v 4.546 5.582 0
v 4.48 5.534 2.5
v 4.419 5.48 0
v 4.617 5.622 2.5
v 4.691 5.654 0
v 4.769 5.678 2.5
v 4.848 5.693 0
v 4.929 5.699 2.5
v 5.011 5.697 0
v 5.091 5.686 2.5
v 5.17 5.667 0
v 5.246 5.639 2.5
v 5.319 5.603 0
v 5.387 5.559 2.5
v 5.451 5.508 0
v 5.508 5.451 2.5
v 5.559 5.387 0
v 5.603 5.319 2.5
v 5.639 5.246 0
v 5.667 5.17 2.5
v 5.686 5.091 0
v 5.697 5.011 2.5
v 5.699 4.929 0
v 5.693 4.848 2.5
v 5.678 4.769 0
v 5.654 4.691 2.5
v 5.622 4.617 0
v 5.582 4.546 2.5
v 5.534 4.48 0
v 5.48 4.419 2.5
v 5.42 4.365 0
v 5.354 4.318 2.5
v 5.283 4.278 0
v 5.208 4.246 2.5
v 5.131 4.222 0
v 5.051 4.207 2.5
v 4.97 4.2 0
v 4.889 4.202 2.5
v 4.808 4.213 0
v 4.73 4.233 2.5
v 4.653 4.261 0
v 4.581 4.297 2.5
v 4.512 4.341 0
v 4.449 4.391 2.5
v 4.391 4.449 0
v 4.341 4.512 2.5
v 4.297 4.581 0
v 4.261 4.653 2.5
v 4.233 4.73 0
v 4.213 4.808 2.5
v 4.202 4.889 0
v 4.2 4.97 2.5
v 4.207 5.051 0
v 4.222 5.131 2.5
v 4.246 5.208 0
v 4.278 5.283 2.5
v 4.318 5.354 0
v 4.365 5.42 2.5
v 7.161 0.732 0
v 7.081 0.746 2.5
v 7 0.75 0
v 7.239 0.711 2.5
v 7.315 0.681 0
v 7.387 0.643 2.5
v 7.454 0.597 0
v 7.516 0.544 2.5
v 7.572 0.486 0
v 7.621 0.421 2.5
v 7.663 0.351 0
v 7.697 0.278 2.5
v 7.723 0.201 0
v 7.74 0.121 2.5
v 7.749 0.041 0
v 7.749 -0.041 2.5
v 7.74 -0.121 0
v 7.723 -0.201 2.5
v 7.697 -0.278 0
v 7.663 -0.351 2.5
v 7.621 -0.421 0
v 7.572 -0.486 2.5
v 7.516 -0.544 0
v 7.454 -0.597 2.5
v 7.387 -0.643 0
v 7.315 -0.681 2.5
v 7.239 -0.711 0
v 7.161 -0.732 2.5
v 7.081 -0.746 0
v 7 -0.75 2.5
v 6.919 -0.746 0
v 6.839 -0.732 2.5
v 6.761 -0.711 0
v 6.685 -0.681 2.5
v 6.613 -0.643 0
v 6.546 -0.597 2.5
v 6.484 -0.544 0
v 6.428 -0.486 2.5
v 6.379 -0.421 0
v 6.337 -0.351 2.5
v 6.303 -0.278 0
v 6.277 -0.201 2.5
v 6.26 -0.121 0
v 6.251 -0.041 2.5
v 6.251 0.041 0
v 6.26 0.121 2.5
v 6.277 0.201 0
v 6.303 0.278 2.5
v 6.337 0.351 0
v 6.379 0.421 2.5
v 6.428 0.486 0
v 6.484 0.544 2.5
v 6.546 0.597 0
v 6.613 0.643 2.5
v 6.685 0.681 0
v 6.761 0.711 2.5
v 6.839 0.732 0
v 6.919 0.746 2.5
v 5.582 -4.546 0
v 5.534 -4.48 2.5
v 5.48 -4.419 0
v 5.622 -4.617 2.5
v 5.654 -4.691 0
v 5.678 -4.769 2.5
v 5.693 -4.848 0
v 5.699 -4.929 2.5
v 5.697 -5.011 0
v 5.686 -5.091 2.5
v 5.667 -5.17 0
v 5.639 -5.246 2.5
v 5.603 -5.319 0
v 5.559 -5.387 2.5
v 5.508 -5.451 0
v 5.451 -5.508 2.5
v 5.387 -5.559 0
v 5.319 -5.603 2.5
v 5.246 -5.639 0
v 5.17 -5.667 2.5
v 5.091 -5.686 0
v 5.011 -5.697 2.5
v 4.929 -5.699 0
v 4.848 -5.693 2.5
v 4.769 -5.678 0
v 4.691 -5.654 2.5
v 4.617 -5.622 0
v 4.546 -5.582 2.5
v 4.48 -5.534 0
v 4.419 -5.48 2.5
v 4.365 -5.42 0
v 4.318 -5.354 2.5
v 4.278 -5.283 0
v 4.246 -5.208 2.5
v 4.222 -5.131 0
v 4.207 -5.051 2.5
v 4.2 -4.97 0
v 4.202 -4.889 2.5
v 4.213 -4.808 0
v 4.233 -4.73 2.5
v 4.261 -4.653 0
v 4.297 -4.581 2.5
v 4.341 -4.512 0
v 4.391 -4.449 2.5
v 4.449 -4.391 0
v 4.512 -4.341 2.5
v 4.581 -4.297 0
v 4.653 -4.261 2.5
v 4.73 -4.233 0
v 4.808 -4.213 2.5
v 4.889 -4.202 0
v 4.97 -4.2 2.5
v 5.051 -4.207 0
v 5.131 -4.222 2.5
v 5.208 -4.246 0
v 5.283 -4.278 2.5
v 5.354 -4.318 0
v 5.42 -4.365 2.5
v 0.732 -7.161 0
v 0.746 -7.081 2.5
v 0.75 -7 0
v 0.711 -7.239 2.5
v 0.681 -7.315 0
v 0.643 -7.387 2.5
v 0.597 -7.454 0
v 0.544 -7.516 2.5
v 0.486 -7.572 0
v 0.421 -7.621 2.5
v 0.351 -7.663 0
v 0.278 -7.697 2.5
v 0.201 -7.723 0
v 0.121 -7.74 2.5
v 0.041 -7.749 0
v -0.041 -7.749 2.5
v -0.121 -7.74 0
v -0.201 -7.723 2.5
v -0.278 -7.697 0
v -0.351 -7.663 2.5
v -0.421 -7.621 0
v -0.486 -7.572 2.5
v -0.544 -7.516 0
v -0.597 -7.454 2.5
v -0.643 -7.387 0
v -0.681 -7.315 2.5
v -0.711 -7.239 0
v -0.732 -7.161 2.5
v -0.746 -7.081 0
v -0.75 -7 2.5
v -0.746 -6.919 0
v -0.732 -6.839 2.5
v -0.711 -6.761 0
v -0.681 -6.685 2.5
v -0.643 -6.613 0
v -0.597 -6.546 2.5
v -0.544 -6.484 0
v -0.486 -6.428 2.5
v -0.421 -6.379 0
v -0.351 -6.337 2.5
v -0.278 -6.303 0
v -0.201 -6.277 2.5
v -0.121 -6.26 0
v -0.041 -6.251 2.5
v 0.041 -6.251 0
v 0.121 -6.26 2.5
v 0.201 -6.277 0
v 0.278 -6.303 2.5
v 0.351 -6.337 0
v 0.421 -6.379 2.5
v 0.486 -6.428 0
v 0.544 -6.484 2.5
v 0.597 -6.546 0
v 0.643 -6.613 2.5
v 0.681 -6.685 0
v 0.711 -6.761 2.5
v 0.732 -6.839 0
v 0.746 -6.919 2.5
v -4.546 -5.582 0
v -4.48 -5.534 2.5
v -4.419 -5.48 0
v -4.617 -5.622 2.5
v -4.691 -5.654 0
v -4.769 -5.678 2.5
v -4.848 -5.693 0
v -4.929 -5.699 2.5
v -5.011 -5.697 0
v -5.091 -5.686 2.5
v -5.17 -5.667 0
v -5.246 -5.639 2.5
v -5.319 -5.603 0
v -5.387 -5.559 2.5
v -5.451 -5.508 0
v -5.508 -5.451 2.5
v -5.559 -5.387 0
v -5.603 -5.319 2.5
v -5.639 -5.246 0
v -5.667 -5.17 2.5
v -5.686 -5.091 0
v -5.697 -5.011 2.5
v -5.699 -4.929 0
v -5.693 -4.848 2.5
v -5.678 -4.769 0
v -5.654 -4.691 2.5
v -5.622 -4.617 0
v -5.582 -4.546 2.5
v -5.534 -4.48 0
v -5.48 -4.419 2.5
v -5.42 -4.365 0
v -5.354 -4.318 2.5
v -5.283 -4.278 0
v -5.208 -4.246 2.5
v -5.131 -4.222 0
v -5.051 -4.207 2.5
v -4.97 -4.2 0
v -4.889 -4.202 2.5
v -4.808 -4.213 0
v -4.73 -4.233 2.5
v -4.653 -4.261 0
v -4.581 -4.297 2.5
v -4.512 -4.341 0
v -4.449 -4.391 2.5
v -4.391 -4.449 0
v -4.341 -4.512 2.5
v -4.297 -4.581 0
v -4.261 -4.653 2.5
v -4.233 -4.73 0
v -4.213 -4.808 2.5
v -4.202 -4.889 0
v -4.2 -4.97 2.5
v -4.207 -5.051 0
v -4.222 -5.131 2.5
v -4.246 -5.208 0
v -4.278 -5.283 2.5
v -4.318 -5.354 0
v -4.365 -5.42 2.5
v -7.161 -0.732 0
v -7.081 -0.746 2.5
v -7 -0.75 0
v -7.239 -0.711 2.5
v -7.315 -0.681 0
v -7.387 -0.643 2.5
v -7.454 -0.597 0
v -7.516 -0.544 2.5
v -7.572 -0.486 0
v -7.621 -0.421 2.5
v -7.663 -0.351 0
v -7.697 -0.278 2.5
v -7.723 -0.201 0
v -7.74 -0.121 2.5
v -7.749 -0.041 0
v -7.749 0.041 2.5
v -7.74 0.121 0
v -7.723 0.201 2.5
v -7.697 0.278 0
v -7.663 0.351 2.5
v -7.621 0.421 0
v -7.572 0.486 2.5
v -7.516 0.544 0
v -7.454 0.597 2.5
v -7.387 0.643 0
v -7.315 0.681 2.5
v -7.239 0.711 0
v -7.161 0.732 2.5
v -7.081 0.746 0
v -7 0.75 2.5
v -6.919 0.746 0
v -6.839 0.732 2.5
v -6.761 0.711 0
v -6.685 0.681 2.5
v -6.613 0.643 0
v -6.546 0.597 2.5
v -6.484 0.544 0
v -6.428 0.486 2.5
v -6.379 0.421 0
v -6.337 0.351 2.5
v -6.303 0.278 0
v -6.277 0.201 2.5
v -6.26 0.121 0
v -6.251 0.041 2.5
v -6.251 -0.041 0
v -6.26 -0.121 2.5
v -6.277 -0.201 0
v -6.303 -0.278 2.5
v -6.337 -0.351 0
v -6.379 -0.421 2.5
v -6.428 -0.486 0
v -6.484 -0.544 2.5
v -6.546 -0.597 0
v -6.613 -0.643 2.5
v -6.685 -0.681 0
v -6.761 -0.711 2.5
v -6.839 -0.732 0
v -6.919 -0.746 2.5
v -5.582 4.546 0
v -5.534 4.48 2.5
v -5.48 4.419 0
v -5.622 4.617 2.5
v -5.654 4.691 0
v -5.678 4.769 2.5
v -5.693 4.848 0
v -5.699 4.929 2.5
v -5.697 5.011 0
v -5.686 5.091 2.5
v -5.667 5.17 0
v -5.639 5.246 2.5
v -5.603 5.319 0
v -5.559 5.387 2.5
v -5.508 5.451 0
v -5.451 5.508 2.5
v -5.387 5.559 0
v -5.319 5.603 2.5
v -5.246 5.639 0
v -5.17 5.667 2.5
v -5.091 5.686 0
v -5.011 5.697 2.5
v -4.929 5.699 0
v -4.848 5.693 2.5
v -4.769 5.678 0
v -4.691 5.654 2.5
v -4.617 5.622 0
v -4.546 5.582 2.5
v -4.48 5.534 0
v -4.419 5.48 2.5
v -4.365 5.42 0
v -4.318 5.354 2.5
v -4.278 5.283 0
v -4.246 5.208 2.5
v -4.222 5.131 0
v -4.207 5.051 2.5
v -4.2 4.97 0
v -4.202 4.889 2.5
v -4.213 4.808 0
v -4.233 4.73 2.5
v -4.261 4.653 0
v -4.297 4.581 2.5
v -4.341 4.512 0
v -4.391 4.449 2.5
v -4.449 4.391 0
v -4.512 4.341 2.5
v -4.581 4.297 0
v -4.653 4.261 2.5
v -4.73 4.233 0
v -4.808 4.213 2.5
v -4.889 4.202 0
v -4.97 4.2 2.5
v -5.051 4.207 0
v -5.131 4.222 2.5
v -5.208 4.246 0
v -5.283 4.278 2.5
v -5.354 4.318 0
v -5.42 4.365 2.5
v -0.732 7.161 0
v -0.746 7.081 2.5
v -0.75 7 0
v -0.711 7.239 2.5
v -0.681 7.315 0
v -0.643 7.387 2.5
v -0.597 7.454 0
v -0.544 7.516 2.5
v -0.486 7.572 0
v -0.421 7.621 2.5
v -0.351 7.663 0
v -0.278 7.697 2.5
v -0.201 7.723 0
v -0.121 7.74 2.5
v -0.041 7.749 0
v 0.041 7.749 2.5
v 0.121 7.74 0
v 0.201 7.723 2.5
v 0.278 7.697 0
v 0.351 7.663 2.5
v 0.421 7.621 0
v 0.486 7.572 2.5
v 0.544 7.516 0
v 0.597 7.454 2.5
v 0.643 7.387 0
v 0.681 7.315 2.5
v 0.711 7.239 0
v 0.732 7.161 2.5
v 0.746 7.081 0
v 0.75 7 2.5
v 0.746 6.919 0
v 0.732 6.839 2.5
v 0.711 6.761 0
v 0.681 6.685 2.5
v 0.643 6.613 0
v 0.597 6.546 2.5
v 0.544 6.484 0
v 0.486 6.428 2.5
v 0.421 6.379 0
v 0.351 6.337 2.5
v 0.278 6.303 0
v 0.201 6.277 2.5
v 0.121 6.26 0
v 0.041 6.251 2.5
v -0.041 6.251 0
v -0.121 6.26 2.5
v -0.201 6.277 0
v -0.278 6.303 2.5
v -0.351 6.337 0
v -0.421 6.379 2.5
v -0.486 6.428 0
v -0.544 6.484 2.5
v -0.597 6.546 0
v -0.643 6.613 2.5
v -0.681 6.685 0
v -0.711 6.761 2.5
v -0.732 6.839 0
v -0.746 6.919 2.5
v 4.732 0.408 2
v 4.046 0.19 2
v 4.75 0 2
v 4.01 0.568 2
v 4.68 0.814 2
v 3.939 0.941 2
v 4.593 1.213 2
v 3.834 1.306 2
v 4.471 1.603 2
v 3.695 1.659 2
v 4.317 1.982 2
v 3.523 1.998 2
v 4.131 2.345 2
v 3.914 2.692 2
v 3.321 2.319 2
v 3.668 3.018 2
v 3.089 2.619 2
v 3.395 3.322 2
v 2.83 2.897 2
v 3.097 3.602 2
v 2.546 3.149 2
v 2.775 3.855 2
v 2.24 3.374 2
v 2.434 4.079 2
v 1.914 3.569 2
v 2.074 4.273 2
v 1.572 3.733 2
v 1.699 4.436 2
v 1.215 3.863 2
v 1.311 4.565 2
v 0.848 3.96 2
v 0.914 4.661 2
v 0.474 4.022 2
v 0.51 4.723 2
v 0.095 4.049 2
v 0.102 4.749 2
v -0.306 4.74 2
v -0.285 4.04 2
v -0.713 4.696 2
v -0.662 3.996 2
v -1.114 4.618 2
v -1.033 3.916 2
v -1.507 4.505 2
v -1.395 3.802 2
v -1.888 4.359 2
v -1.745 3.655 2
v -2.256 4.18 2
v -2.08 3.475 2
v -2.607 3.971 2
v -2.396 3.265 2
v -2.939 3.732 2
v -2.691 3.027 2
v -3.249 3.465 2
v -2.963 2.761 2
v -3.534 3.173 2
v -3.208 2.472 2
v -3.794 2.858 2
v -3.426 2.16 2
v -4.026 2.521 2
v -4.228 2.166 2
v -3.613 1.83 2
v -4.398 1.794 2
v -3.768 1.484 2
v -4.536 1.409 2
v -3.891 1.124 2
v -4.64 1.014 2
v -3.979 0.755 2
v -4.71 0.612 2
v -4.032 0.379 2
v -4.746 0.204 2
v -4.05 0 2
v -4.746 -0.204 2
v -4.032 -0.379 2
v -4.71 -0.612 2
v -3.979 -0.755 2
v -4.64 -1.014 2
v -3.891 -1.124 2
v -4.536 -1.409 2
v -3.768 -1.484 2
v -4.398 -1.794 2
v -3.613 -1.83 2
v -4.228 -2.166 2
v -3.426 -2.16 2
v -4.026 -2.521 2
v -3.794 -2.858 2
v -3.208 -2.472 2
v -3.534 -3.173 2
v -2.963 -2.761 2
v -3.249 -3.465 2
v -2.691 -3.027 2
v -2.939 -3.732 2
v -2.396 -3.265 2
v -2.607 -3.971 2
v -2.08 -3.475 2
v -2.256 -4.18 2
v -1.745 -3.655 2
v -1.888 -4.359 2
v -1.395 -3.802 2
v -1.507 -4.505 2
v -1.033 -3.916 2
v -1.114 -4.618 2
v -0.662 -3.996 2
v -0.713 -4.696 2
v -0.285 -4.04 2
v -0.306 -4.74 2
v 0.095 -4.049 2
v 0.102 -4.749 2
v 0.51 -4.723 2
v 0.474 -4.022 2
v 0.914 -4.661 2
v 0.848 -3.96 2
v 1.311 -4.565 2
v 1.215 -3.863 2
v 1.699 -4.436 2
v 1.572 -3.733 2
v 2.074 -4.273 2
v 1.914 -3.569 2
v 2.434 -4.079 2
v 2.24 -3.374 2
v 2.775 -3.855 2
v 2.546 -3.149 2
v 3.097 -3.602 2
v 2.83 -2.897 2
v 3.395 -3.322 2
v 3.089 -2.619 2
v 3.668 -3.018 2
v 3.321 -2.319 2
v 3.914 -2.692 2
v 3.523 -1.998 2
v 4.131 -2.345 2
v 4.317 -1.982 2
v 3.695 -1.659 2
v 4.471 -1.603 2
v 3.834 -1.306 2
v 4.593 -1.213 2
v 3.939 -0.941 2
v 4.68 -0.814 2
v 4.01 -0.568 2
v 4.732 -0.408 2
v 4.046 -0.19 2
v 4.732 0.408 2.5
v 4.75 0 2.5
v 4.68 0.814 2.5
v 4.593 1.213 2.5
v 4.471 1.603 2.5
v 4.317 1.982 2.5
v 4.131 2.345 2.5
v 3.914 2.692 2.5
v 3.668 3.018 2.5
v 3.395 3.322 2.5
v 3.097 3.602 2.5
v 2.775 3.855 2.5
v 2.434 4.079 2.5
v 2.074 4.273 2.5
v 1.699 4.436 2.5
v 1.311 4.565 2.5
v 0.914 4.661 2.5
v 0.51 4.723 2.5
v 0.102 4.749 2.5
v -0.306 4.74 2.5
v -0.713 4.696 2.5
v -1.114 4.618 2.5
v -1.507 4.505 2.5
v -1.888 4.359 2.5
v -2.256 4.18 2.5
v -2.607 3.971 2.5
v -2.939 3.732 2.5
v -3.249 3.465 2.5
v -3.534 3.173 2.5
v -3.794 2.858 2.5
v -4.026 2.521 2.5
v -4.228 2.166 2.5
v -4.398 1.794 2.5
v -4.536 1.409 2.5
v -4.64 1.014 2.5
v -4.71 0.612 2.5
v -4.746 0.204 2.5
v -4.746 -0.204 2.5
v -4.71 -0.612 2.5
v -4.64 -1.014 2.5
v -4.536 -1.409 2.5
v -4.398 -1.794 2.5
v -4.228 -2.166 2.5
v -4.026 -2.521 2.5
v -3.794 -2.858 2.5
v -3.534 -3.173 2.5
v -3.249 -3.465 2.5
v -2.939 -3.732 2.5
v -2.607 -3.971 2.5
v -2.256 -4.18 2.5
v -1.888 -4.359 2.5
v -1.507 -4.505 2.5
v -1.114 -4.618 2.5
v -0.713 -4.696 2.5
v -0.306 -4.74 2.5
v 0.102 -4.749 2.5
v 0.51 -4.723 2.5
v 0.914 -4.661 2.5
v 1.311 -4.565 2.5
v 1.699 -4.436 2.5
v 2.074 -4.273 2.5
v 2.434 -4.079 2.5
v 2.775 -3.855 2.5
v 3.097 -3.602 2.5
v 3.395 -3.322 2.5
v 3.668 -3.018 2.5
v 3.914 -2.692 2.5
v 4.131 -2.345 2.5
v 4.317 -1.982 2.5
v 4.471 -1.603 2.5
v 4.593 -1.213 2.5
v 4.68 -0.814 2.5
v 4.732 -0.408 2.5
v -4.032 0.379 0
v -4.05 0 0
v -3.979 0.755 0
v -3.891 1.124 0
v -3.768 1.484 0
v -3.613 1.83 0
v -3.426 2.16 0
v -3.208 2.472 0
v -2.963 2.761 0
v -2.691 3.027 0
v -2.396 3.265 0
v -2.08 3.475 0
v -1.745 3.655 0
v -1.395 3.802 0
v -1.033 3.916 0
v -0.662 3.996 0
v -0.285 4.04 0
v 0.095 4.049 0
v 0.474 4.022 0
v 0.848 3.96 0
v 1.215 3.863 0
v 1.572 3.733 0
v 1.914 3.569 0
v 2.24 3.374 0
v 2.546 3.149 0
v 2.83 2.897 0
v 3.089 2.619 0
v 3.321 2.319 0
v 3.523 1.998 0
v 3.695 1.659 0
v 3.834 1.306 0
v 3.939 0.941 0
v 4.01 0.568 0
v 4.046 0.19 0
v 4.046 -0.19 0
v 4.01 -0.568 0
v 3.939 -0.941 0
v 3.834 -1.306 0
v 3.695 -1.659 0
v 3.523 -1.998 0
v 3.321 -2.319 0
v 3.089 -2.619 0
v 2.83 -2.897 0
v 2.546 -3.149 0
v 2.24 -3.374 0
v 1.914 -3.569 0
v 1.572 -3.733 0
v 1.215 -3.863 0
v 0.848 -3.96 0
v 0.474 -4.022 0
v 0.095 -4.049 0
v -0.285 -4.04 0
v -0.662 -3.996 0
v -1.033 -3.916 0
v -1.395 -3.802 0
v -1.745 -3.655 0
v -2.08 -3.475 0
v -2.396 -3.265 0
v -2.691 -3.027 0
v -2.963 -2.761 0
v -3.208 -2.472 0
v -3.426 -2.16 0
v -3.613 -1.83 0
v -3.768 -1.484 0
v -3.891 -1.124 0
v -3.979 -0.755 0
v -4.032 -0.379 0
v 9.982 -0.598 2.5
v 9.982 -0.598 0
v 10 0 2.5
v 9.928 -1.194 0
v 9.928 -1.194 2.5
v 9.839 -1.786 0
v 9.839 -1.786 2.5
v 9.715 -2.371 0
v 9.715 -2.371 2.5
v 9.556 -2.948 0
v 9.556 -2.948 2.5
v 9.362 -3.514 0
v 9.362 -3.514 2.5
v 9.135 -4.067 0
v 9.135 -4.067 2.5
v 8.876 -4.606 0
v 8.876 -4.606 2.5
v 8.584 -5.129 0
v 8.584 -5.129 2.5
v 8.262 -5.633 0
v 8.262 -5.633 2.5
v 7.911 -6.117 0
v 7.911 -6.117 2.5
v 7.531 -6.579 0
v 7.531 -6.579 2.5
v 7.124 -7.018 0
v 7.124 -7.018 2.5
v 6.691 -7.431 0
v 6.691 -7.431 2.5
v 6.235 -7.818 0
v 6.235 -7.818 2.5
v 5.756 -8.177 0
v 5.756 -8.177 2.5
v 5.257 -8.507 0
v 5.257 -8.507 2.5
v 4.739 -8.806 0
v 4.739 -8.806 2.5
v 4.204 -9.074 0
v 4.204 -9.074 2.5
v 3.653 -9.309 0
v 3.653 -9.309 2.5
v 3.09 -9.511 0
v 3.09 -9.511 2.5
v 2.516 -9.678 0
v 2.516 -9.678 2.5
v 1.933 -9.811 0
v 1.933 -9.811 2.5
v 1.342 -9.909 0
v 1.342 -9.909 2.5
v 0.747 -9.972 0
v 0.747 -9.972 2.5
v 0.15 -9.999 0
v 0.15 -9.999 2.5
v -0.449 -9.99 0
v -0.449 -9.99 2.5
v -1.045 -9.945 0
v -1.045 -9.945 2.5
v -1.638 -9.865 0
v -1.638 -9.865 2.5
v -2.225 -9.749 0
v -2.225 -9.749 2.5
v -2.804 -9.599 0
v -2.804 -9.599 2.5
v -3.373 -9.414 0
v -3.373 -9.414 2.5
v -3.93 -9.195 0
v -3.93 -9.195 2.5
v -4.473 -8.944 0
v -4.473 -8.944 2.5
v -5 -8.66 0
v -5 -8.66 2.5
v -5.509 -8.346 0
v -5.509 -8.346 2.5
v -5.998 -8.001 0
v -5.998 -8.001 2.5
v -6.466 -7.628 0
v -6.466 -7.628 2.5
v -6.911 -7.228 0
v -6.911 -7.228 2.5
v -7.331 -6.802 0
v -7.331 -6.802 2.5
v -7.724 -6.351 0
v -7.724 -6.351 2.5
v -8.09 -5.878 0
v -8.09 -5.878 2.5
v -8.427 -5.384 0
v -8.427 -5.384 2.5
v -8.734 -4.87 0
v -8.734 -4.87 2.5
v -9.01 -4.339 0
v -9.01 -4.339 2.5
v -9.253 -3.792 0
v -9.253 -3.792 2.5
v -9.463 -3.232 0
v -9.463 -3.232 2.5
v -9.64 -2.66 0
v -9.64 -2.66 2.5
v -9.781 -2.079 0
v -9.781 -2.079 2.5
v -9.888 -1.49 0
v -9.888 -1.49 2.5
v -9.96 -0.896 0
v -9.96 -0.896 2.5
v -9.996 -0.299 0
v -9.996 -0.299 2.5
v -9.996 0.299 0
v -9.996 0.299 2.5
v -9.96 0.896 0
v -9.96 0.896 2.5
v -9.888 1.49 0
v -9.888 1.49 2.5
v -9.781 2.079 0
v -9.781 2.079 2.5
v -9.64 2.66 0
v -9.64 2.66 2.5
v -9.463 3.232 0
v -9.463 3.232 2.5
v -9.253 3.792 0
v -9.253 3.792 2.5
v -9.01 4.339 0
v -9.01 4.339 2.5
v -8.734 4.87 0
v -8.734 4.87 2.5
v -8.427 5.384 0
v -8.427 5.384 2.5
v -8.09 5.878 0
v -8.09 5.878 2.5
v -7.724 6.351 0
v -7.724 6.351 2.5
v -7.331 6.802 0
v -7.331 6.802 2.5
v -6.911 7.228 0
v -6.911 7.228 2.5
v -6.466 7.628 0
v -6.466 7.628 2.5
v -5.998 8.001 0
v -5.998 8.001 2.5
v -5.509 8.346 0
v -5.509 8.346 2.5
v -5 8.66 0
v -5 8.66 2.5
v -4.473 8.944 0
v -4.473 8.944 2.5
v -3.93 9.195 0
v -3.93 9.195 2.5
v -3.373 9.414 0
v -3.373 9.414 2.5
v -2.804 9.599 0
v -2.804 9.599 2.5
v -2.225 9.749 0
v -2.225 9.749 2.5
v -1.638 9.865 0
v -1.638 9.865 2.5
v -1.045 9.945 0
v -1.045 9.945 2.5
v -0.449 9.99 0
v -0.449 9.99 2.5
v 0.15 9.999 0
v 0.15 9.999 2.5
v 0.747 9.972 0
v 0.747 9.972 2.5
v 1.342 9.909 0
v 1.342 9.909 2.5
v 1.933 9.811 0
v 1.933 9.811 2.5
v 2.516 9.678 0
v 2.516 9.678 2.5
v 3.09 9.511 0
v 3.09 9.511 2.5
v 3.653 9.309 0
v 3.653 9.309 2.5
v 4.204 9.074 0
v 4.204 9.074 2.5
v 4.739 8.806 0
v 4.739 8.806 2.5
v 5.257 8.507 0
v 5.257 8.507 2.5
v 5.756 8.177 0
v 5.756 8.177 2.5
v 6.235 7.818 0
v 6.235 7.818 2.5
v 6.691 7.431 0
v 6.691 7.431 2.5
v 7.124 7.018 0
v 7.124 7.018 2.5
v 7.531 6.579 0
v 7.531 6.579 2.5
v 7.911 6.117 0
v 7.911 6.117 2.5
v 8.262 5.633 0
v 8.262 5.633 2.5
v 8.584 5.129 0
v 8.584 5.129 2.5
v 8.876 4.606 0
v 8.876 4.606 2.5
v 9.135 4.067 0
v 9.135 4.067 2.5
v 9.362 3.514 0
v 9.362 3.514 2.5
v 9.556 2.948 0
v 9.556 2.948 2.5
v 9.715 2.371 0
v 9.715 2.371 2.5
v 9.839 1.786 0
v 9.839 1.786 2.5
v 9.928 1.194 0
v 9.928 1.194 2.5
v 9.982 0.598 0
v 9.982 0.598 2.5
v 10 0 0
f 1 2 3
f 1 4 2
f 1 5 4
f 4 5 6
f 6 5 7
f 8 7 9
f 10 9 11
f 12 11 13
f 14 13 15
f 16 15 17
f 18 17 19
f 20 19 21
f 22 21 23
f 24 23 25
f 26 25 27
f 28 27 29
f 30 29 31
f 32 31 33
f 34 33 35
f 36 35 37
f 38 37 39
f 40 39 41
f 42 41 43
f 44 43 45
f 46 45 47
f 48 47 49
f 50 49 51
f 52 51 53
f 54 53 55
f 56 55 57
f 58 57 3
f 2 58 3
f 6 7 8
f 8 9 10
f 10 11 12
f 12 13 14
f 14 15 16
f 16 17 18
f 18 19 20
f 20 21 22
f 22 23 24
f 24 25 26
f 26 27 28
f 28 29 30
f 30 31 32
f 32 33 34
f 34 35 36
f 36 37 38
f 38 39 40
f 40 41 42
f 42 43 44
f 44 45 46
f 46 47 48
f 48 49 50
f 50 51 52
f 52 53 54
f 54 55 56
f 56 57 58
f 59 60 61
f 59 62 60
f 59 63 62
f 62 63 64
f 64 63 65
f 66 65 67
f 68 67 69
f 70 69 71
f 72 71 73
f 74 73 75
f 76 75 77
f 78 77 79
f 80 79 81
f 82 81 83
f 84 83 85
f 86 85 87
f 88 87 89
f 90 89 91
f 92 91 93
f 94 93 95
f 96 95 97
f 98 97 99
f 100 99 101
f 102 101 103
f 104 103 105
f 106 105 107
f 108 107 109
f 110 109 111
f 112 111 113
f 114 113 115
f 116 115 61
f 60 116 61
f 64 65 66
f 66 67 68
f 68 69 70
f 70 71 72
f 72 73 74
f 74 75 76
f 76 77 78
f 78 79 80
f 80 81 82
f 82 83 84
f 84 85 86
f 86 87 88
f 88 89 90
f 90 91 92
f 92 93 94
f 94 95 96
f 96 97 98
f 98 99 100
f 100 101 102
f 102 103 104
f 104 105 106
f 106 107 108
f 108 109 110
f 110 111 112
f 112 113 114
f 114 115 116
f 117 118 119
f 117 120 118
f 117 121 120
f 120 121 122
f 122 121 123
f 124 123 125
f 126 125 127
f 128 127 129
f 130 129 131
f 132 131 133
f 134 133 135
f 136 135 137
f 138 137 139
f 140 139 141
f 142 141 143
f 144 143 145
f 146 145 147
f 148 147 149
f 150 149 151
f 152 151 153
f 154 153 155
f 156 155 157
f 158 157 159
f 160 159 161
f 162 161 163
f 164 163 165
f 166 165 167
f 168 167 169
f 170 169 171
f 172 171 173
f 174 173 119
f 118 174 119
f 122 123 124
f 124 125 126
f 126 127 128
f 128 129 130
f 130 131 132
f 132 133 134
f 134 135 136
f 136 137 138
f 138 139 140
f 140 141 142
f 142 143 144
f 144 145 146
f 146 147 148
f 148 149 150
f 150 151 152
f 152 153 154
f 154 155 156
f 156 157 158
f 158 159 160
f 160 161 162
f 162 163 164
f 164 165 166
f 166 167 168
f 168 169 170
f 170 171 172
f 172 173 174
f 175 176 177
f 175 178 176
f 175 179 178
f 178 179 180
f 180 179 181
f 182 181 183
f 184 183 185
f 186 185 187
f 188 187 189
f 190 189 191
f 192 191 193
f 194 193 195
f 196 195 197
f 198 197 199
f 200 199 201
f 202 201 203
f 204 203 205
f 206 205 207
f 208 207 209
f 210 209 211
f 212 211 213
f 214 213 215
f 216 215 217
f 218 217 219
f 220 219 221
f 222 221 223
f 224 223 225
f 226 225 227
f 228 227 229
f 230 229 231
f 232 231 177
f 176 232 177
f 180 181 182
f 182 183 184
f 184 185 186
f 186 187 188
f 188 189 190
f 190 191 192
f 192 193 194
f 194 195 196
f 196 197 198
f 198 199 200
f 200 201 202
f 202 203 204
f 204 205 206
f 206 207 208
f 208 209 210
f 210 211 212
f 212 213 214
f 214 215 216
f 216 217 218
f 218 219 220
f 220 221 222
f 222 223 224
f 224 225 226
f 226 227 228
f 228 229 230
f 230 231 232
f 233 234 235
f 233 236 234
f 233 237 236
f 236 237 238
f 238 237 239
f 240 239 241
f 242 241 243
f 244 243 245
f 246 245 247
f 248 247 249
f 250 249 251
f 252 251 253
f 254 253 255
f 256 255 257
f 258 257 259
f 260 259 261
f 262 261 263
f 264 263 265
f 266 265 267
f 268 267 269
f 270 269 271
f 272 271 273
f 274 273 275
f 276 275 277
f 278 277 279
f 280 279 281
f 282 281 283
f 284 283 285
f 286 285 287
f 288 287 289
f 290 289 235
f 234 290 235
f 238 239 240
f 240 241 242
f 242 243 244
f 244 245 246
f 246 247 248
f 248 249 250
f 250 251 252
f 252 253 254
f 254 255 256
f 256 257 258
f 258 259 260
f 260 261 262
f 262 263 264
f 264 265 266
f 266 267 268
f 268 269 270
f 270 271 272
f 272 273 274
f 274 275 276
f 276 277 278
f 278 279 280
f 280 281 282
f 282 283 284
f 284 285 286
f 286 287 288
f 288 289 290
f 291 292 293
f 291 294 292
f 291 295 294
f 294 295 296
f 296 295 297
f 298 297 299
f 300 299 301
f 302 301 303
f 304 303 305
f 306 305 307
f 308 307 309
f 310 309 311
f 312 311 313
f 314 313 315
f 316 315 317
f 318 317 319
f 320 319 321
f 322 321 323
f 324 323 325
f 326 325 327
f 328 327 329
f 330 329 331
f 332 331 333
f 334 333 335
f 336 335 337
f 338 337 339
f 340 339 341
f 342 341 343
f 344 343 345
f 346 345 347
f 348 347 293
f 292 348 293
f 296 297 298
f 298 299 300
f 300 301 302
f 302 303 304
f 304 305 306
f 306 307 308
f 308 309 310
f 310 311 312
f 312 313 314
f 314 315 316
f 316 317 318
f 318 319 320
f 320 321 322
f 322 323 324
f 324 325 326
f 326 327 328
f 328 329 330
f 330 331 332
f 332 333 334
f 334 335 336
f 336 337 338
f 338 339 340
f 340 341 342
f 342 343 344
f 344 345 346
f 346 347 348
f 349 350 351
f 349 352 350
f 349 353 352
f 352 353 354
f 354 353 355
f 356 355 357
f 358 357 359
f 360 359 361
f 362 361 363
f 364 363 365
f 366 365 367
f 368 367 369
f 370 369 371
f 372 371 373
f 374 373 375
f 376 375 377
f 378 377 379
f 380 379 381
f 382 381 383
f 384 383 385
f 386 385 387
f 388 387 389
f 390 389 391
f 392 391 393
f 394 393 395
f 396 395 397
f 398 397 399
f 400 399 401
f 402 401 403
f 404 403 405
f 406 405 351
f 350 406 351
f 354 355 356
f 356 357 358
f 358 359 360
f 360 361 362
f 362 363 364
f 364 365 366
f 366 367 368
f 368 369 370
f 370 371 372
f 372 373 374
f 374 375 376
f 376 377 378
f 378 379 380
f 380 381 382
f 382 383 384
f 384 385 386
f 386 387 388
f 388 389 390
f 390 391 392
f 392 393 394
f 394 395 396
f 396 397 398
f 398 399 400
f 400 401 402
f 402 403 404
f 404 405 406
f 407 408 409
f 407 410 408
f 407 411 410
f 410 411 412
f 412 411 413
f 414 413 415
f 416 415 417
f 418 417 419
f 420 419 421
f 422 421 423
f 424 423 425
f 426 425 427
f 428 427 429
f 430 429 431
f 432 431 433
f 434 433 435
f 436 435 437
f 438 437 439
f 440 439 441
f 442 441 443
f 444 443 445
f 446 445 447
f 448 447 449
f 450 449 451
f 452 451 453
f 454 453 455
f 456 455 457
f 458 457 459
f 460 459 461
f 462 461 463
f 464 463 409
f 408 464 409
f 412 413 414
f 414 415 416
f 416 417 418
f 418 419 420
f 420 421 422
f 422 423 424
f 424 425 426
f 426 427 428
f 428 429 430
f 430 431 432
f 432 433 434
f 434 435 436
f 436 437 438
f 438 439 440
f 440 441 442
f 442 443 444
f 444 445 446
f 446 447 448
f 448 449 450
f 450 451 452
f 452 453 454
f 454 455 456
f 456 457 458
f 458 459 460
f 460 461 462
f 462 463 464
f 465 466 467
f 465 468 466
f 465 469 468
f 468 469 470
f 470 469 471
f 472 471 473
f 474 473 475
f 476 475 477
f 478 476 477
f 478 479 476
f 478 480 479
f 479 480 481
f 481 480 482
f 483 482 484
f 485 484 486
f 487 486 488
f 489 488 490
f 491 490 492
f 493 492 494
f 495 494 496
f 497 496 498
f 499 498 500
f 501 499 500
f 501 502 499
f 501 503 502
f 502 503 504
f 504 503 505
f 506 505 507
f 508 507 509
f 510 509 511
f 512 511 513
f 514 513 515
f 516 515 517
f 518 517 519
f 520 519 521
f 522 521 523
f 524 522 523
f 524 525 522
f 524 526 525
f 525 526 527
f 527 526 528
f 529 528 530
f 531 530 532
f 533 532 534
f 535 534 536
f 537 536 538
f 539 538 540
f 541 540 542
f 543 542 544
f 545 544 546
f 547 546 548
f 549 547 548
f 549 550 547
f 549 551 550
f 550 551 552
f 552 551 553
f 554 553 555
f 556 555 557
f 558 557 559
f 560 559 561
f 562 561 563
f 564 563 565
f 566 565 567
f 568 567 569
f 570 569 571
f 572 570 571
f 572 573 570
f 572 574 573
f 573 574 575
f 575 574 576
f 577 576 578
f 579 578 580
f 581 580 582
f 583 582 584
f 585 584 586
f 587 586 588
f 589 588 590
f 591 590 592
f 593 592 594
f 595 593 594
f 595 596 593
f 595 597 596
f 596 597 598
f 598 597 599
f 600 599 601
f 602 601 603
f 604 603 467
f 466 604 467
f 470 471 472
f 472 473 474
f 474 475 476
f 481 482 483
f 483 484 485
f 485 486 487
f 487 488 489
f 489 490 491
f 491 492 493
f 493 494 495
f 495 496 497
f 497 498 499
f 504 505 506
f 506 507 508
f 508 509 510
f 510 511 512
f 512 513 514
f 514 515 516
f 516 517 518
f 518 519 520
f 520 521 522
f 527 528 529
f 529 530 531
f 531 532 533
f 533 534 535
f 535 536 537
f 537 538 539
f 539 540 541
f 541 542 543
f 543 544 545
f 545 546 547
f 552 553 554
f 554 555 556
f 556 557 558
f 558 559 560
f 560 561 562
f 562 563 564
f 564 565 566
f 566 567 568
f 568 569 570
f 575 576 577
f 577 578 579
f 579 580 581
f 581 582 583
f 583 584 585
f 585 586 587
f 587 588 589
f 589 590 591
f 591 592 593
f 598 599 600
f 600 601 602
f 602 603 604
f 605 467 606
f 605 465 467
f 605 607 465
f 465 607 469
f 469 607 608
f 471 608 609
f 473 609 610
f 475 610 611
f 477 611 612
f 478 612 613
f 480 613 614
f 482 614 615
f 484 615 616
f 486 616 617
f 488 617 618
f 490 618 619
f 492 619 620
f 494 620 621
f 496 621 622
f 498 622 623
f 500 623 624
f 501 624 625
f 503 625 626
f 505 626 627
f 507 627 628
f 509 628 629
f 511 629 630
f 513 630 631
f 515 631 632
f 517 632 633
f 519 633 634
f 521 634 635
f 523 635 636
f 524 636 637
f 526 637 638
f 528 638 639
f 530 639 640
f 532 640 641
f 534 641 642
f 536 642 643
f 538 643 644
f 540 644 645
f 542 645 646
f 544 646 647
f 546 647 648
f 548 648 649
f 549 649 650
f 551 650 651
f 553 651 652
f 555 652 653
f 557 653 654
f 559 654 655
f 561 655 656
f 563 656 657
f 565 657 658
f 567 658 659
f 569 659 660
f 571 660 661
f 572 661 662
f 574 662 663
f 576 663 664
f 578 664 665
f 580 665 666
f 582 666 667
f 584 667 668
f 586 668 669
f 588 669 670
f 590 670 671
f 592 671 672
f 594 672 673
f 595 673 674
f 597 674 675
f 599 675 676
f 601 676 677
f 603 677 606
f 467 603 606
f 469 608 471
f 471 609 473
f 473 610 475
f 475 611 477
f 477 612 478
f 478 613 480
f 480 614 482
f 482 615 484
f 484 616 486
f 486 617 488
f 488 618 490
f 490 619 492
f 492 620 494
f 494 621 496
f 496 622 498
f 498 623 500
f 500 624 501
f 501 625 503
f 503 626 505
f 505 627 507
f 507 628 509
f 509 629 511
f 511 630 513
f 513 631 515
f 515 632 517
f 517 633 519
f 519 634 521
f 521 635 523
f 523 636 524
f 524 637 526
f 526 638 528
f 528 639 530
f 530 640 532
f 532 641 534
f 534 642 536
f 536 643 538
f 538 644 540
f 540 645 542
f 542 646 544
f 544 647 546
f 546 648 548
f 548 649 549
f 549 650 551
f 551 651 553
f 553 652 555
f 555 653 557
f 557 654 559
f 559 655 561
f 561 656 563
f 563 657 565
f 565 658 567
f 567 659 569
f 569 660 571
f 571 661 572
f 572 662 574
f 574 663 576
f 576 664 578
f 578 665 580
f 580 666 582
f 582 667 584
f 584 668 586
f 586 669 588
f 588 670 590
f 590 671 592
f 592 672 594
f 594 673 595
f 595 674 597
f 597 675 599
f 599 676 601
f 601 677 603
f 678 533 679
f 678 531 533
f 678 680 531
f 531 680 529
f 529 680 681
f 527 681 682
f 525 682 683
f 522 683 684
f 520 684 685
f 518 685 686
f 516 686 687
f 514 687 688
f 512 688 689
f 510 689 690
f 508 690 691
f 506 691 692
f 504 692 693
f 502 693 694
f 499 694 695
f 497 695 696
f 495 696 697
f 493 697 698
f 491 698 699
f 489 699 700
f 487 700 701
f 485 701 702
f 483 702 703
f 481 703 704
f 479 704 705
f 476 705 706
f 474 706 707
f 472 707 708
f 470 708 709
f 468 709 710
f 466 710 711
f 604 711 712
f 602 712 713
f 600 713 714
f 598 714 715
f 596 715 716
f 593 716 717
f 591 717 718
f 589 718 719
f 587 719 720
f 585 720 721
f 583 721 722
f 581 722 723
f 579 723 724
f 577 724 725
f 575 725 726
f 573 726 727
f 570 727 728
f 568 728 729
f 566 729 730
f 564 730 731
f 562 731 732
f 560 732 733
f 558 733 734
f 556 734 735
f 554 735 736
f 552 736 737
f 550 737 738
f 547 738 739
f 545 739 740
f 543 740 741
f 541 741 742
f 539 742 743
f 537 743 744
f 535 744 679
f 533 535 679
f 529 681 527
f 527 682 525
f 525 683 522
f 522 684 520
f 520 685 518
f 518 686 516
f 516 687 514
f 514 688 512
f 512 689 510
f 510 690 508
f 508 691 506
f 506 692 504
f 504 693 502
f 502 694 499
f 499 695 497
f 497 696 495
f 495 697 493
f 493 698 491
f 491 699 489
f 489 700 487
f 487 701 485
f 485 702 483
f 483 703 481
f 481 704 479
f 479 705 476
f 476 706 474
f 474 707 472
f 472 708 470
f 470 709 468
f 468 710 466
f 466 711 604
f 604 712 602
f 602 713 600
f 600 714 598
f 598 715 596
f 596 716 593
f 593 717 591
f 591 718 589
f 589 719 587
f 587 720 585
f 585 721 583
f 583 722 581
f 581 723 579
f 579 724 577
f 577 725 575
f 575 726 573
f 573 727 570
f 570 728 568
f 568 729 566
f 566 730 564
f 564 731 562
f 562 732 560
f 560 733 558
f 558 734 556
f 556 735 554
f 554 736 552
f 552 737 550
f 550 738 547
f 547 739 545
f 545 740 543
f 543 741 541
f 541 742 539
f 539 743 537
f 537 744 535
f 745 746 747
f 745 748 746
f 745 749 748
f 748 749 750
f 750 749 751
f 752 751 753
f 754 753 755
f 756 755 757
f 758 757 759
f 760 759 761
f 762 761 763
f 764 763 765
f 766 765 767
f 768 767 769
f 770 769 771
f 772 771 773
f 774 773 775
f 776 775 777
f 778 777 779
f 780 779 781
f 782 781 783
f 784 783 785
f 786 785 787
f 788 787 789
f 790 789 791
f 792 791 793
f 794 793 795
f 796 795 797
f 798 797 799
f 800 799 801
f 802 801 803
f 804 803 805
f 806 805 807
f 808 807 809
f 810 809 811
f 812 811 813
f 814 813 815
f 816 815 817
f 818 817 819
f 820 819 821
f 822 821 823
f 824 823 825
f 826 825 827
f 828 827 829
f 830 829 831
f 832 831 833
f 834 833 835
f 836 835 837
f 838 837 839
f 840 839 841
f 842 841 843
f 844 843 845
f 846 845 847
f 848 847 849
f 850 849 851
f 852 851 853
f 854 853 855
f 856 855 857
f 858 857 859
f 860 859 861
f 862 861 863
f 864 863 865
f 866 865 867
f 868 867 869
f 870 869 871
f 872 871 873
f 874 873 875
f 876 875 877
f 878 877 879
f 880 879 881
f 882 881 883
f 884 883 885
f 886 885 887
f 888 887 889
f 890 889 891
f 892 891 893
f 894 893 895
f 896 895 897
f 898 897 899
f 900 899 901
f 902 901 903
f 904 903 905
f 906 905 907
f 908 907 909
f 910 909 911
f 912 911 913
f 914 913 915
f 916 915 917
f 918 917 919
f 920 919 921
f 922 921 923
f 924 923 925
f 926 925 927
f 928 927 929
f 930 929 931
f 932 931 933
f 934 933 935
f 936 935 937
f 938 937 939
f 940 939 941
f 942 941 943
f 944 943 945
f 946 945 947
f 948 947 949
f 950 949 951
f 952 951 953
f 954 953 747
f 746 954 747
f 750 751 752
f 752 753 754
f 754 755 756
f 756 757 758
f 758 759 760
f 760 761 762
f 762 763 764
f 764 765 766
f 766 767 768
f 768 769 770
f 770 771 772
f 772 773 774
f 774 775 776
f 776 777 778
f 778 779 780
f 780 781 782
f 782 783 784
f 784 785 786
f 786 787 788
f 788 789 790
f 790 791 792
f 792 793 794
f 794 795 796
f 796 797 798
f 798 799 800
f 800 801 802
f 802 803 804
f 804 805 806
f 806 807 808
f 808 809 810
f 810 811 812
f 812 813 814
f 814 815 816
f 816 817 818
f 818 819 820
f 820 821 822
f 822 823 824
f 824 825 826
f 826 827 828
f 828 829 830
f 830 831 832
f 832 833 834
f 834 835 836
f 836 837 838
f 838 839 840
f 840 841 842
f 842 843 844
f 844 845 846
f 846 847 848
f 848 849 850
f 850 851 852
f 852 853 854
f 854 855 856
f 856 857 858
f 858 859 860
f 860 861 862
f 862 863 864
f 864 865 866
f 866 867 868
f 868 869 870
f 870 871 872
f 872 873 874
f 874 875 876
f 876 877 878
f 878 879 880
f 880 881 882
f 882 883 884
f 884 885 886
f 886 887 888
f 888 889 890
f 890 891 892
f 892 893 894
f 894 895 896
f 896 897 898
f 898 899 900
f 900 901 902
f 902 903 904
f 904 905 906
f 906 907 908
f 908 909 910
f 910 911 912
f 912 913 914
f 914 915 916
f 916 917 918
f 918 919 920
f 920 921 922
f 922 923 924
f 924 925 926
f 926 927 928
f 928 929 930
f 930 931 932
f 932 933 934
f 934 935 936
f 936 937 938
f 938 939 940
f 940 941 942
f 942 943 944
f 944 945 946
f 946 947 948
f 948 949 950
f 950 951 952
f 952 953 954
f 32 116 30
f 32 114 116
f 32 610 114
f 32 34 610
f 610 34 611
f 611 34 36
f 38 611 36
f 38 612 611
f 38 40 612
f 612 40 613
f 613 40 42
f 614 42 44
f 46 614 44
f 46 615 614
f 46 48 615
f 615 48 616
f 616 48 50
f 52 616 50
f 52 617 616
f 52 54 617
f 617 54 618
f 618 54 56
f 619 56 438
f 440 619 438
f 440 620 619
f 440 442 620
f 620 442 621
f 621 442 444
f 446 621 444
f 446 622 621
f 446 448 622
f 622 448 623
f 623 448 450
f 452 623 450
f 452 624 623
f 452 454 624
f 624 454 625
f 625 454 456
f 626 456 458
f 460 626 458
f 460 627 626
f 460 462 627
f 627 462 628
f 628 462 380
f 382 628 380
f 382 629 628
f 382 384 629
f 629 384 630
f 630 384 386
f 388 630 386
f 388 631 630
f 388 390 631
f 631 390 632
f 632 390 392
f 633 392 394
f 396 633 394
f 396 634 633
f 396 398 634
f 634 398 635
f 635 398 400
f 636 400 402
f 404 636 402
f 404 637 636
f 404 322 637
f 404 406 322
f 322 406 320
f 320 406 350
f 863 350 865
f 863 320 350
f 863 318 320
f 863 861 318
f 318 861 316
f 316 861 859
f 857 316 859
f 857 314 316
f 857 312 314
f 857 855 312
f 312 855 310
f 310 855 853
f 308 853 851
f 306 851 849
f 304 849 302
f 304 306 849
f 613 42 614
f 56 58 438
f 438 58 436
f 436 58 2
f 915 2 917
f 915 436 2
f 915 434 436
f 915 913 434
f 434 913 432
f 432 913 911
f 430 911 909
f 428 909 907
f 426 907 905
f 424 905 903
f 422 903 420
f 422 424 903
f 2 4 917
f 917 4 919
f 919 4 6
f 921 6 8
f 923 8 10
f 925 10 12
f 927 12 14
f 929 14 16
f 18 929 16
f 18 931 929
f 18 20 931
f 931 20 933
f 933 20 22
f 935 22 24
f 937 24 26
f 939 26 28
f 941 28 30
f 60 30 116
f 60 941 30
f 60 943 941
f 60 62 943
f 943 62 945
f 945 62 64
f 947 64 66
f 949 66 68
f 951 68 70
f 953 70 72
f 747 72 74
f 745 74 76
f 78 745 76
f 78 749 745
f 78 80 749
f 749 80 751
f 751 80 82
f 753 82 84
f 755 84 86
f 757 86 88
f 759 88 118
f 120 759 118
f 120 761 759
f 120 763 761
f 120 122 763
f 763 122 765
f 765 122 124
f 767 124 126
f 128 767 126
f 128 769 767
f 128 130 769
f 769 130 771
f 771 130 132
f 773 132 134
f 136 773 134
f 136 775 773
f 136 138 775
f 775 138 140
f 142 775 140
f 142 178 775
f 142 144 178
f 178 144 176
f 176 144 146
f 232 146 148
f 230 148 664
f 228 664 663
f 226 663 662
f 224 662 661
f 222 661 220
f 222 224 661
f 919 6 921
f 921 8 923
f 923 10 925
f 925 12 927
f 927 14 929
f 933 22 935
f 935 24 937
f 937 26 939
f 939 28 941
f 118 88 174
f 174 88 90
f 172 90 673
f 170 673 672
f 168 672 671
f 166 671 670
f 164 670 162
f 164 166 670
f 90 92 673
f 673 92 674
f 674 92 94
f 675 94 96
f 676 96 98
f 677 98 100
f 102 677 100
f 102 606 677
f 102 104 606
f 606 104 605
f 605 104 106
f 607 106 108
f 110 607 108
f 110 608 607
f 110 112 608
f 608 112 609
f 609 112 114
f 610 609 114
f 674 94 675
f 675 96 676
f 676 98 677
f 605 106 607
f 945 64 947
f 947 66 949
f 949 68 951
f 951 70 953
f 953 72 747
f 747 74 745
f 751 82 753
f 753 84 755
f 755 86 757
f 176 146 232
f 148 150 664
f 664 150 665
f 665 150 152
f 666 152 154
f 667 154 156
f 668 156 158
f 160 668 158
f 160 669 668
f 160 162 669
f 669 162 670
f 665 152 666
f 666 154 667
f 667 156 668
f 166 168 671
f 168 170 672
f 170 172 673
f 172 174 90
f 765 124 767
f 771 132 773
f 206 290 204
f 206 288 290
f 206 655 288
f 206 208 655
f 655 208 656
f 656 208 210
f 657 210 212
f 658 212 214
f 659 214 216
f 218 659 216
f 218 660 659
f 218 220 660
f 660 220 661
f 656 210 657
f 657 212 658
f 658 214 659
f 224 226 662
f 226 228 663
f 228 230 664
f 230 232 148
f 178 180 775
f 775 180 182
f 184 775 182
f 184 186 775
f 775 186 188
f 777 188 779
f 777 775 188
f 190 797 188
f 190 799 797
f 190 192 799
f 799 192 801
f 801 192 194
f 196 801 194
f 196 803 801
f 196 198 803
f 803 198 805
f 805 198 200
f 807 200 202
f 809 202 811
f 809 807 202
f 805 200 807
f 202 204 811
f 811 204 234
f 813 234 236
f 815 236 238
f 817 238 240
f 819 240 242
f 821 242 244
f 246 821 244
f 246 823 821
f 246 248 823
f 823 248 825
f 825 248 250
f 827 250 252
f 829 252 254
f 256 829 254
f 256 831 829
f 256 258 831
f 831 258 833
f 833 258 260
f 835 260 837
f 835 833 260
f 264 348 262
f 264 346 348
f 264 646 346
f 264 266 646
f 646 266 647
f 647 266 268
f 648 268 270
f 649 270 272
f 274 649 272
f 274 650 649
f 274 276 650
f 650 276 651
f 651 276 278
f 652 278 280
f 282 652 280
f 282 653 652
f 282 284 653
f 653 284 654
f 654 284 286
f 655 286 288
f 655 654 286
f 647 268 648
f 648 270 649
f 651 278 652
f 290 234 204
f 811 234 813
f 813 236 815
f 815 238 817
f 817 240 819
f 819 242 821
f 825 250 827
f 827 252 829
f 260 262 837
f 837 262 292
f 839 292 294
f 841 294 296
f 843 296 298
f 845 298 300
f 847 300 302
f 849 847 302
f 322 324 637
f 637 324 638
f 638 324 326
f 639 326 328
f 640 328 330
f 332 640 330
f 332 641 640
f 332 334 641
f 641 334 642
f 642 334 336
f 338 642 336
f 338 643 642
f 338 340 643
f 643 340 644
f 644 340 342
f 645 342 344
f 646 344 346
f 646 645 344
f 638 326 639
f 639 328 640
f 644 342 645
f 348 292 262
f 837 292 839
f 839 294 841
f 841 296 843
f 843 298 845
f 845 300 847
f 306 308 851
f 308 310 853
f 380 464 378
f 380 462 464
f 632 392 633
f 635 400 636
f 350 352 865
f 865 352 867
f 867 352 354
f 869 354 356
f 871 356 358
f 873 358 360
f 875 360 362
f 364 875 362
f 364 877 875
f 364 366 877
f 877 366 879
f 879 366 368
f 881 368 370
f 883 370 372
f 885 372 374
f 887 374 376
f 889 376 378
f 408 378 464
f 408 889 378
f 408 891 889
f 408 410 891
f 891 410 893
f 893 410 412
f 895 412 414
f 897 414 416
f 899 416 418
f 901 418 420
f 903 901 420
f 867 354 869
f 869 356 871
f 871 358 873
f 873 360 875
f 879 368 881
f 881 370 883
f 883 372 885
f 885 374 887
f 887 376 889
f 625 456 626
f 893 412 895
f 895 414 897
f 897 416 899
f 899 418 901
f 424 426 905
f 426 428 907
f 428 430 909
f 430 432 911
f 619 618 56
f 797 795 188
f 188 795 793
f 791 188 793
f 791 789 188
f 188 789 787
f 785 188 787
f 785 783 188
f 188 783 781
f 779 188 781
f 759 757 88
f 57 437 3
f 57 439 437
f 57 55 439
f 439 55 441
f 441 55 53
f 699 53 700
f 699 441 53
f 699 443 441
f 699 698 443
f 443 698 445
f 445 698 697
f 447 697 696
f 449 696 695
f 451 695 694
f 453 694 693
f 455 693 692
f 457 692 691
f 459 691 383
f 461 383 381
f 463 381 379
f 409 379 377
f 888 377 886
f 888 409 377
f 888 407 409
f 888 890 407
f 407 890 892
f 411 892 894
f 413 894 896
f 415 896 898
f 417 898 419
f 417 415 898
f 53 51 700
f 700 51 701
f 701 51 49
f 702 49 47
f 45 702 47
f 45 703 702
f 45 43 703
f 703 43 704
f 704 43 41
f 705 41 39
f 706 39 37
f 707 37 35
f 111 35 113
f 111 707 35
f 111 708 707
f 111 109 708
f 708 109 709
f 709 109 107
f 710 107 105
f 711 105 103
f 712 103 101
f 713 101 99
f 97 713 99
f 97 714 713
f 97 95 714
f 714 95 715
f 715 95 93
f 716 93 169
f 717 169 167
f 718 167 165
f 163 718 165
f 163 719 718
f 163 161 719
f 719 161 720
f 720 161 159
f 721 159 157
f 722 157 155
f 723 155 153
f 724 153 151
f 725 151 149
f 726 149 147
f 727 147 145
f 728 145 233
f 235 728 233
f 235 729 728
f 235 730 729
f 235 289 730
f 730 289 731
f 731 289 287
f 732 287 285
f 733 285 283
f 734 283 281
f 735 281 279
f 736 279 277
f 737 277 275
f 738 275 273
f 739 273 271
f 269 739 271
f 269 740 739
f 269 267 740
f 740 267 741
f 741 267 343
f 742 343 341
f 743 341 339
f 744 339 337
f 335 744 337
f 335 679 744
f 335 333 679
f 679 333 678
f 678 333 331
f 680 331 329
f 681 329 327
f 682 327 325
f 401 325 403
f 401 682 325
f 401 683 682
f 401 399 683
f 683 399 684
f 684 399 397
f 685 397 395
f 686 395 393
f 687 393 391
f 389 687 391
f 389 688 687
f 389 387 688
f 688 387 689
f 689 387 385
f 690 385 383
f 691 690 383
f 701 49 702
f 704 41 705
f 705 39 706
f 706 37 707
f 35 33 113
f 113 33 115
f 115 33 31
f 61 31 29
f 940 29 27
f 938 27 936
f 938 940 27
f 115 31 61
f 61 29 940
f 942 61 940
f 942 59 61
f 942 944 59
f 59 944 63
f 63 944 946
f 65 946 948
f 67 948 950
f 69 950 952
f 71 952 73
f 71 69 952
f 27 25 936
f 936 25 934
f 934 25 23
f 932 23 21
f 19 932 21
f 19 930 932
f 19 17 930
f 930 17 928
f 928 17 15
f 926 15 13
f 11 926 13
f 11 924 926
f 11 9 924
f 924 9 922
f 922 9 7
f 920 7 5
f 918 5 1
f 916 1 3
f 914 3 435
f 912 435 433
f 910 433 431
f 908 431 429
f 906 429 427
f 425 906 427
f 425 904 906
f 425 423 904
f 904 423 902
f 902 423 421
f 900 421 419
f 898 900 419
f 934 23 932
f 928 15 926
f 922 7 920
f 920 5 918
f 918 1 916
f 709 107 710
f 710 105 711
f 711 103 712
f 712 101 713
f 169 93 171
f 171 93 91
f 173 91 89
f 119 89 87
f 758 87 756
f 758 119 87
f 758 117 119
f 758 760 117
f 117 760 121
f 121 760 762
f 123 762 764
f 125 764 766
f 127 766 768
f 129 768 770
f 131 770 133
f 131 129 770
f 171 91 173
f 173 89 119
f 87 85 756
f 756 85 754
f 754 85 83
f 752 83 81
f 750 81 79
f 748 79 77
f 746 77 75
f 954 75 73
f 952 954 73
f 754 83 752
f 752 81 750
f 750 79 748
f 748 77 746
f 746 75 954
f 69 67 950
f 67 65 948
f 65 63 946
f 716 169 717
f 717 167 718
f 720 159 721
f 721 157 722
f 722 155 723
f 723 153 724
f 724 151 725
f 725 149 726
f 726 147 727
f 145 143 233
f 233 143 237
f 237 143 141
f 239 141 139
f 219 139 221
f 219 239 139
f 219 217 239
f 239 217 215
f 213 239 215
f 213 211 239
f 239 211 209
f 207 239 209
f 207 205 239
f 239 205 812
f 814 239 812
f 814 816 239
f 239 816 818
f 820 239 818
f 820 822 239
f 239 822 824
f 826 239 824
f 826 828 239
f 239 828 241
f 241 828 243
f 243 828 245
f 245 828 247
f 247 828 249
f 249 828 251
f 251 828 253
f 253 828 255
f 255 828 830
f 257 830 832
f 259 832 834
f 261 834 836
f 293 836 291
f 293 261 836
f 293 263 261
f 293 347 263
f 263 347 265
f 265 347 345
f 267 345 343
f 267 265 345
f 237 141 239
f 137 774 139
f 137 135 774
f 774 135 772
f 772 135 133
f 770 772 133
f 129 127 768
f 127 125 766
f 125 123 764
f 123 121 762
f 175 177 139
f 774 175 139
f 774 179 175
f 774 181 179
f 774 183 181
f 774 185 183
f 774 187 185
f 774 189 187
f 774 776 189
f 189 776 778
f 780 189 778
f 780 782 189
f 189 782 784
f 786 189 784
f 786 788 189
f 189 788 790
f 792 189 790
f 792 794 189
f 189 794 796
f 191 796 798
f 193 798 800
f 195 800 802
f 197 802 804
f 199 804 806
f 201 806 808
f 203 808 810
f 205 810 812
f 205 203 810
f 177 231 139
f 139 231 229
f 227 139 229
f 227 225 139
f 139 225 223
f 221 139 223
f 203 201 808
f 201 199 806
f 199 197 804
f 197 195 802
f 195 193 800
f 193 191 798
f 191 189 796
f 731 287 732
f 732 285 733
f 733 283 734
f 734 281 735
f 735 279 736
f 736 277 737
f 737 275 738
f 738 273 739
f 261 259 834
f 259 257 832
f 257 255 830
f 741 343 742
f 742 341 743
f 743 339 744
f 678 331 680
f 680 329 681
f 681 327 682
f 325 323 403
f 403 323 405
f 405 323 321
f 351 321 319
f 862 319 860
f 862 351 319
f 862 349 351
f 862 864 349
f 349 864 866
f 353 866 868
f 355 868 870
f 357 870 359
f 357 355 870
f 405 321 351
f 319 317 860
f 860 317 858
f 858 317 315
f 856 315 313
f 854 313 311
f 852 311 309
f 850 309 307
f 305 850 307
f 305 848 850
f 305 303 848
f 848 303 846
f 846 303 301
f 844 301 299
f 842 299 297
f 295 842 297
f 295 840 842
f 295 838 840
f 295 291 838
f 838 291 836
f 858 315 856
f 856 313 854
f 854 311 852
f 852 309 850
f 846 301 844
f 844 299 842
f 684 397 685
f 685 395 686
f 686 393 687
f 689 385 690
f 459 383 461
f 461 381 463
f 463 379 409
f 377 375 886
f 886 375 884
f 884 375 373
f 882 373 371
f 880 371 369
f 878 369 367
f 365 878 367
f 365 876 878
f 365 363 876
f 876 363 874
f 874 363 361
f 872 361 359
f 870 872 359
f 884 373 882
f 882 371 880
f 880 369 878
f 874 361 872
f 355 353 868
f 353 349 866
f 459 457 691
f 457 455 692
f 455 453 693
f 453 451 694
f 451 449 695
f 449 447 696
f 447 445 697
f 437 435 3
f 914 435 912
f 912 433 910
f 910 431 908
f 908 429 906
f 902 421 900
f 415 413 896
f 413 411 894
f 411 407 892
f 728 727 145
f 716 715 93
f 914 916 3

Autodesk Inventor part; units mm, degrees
ref_plane "YZ Plane" through (0, 0, 0) normal (1, 0, 0) x (0, 1, 0)
ref_plane "XZ Plane" through (0, 0, 0) normal (0, 1, 0) x (-1, 0, 0)
ref_plane "XY Plane" through (0, 0, 0) normal (0, 0, 1) x (1, 0, 0)
sketch "スケッチ1" plane through (0, 0, 0) normal (0, 0, 1) x (1, 0, 0)
  circle A0 centre (0, 0) radius 10
  dimension "d0" = 20
extrude "押し出し1" add sketch "スケッチ1" along normal blind 2.5
sketch "スケッチ2" plane through (0, 0, 2.5) normal (0, 0, 1) x (1, 0, 0)
  circle A0 centre (0, 0) radius 10 projected
  circle A1 centre (0, 0) radius 5
  dimension "d3" = 10
hole "穴2" at (0, 0, 2.5) direction (0, 0, -1) diameter 8.1 end through all counterbore diameter 9.5 counterbore depth 0.5
sketch "スケッチ5" plane through (0, 0, 2.5) normal (0, 0, 1) x (1, 0, 0)
  circle A0 centre (0, 7) radius 1
  circle A1 centre (0, 0) radius 4.75 projected
  dimension "d30" = 2
  dimension "d57" = 0
  dimension "d58" = 7
hole "穴4" at (0, 7, 2.5) direction (0, 0, -1) diameter 1.5 end through all
pattern_circular "円形状パターン1" count 8 over 360 about axis through (0, 0, -25.8945) along (0, 0, 1) of "穴4"
properties part number "03" material "アルミニウム 6061"
